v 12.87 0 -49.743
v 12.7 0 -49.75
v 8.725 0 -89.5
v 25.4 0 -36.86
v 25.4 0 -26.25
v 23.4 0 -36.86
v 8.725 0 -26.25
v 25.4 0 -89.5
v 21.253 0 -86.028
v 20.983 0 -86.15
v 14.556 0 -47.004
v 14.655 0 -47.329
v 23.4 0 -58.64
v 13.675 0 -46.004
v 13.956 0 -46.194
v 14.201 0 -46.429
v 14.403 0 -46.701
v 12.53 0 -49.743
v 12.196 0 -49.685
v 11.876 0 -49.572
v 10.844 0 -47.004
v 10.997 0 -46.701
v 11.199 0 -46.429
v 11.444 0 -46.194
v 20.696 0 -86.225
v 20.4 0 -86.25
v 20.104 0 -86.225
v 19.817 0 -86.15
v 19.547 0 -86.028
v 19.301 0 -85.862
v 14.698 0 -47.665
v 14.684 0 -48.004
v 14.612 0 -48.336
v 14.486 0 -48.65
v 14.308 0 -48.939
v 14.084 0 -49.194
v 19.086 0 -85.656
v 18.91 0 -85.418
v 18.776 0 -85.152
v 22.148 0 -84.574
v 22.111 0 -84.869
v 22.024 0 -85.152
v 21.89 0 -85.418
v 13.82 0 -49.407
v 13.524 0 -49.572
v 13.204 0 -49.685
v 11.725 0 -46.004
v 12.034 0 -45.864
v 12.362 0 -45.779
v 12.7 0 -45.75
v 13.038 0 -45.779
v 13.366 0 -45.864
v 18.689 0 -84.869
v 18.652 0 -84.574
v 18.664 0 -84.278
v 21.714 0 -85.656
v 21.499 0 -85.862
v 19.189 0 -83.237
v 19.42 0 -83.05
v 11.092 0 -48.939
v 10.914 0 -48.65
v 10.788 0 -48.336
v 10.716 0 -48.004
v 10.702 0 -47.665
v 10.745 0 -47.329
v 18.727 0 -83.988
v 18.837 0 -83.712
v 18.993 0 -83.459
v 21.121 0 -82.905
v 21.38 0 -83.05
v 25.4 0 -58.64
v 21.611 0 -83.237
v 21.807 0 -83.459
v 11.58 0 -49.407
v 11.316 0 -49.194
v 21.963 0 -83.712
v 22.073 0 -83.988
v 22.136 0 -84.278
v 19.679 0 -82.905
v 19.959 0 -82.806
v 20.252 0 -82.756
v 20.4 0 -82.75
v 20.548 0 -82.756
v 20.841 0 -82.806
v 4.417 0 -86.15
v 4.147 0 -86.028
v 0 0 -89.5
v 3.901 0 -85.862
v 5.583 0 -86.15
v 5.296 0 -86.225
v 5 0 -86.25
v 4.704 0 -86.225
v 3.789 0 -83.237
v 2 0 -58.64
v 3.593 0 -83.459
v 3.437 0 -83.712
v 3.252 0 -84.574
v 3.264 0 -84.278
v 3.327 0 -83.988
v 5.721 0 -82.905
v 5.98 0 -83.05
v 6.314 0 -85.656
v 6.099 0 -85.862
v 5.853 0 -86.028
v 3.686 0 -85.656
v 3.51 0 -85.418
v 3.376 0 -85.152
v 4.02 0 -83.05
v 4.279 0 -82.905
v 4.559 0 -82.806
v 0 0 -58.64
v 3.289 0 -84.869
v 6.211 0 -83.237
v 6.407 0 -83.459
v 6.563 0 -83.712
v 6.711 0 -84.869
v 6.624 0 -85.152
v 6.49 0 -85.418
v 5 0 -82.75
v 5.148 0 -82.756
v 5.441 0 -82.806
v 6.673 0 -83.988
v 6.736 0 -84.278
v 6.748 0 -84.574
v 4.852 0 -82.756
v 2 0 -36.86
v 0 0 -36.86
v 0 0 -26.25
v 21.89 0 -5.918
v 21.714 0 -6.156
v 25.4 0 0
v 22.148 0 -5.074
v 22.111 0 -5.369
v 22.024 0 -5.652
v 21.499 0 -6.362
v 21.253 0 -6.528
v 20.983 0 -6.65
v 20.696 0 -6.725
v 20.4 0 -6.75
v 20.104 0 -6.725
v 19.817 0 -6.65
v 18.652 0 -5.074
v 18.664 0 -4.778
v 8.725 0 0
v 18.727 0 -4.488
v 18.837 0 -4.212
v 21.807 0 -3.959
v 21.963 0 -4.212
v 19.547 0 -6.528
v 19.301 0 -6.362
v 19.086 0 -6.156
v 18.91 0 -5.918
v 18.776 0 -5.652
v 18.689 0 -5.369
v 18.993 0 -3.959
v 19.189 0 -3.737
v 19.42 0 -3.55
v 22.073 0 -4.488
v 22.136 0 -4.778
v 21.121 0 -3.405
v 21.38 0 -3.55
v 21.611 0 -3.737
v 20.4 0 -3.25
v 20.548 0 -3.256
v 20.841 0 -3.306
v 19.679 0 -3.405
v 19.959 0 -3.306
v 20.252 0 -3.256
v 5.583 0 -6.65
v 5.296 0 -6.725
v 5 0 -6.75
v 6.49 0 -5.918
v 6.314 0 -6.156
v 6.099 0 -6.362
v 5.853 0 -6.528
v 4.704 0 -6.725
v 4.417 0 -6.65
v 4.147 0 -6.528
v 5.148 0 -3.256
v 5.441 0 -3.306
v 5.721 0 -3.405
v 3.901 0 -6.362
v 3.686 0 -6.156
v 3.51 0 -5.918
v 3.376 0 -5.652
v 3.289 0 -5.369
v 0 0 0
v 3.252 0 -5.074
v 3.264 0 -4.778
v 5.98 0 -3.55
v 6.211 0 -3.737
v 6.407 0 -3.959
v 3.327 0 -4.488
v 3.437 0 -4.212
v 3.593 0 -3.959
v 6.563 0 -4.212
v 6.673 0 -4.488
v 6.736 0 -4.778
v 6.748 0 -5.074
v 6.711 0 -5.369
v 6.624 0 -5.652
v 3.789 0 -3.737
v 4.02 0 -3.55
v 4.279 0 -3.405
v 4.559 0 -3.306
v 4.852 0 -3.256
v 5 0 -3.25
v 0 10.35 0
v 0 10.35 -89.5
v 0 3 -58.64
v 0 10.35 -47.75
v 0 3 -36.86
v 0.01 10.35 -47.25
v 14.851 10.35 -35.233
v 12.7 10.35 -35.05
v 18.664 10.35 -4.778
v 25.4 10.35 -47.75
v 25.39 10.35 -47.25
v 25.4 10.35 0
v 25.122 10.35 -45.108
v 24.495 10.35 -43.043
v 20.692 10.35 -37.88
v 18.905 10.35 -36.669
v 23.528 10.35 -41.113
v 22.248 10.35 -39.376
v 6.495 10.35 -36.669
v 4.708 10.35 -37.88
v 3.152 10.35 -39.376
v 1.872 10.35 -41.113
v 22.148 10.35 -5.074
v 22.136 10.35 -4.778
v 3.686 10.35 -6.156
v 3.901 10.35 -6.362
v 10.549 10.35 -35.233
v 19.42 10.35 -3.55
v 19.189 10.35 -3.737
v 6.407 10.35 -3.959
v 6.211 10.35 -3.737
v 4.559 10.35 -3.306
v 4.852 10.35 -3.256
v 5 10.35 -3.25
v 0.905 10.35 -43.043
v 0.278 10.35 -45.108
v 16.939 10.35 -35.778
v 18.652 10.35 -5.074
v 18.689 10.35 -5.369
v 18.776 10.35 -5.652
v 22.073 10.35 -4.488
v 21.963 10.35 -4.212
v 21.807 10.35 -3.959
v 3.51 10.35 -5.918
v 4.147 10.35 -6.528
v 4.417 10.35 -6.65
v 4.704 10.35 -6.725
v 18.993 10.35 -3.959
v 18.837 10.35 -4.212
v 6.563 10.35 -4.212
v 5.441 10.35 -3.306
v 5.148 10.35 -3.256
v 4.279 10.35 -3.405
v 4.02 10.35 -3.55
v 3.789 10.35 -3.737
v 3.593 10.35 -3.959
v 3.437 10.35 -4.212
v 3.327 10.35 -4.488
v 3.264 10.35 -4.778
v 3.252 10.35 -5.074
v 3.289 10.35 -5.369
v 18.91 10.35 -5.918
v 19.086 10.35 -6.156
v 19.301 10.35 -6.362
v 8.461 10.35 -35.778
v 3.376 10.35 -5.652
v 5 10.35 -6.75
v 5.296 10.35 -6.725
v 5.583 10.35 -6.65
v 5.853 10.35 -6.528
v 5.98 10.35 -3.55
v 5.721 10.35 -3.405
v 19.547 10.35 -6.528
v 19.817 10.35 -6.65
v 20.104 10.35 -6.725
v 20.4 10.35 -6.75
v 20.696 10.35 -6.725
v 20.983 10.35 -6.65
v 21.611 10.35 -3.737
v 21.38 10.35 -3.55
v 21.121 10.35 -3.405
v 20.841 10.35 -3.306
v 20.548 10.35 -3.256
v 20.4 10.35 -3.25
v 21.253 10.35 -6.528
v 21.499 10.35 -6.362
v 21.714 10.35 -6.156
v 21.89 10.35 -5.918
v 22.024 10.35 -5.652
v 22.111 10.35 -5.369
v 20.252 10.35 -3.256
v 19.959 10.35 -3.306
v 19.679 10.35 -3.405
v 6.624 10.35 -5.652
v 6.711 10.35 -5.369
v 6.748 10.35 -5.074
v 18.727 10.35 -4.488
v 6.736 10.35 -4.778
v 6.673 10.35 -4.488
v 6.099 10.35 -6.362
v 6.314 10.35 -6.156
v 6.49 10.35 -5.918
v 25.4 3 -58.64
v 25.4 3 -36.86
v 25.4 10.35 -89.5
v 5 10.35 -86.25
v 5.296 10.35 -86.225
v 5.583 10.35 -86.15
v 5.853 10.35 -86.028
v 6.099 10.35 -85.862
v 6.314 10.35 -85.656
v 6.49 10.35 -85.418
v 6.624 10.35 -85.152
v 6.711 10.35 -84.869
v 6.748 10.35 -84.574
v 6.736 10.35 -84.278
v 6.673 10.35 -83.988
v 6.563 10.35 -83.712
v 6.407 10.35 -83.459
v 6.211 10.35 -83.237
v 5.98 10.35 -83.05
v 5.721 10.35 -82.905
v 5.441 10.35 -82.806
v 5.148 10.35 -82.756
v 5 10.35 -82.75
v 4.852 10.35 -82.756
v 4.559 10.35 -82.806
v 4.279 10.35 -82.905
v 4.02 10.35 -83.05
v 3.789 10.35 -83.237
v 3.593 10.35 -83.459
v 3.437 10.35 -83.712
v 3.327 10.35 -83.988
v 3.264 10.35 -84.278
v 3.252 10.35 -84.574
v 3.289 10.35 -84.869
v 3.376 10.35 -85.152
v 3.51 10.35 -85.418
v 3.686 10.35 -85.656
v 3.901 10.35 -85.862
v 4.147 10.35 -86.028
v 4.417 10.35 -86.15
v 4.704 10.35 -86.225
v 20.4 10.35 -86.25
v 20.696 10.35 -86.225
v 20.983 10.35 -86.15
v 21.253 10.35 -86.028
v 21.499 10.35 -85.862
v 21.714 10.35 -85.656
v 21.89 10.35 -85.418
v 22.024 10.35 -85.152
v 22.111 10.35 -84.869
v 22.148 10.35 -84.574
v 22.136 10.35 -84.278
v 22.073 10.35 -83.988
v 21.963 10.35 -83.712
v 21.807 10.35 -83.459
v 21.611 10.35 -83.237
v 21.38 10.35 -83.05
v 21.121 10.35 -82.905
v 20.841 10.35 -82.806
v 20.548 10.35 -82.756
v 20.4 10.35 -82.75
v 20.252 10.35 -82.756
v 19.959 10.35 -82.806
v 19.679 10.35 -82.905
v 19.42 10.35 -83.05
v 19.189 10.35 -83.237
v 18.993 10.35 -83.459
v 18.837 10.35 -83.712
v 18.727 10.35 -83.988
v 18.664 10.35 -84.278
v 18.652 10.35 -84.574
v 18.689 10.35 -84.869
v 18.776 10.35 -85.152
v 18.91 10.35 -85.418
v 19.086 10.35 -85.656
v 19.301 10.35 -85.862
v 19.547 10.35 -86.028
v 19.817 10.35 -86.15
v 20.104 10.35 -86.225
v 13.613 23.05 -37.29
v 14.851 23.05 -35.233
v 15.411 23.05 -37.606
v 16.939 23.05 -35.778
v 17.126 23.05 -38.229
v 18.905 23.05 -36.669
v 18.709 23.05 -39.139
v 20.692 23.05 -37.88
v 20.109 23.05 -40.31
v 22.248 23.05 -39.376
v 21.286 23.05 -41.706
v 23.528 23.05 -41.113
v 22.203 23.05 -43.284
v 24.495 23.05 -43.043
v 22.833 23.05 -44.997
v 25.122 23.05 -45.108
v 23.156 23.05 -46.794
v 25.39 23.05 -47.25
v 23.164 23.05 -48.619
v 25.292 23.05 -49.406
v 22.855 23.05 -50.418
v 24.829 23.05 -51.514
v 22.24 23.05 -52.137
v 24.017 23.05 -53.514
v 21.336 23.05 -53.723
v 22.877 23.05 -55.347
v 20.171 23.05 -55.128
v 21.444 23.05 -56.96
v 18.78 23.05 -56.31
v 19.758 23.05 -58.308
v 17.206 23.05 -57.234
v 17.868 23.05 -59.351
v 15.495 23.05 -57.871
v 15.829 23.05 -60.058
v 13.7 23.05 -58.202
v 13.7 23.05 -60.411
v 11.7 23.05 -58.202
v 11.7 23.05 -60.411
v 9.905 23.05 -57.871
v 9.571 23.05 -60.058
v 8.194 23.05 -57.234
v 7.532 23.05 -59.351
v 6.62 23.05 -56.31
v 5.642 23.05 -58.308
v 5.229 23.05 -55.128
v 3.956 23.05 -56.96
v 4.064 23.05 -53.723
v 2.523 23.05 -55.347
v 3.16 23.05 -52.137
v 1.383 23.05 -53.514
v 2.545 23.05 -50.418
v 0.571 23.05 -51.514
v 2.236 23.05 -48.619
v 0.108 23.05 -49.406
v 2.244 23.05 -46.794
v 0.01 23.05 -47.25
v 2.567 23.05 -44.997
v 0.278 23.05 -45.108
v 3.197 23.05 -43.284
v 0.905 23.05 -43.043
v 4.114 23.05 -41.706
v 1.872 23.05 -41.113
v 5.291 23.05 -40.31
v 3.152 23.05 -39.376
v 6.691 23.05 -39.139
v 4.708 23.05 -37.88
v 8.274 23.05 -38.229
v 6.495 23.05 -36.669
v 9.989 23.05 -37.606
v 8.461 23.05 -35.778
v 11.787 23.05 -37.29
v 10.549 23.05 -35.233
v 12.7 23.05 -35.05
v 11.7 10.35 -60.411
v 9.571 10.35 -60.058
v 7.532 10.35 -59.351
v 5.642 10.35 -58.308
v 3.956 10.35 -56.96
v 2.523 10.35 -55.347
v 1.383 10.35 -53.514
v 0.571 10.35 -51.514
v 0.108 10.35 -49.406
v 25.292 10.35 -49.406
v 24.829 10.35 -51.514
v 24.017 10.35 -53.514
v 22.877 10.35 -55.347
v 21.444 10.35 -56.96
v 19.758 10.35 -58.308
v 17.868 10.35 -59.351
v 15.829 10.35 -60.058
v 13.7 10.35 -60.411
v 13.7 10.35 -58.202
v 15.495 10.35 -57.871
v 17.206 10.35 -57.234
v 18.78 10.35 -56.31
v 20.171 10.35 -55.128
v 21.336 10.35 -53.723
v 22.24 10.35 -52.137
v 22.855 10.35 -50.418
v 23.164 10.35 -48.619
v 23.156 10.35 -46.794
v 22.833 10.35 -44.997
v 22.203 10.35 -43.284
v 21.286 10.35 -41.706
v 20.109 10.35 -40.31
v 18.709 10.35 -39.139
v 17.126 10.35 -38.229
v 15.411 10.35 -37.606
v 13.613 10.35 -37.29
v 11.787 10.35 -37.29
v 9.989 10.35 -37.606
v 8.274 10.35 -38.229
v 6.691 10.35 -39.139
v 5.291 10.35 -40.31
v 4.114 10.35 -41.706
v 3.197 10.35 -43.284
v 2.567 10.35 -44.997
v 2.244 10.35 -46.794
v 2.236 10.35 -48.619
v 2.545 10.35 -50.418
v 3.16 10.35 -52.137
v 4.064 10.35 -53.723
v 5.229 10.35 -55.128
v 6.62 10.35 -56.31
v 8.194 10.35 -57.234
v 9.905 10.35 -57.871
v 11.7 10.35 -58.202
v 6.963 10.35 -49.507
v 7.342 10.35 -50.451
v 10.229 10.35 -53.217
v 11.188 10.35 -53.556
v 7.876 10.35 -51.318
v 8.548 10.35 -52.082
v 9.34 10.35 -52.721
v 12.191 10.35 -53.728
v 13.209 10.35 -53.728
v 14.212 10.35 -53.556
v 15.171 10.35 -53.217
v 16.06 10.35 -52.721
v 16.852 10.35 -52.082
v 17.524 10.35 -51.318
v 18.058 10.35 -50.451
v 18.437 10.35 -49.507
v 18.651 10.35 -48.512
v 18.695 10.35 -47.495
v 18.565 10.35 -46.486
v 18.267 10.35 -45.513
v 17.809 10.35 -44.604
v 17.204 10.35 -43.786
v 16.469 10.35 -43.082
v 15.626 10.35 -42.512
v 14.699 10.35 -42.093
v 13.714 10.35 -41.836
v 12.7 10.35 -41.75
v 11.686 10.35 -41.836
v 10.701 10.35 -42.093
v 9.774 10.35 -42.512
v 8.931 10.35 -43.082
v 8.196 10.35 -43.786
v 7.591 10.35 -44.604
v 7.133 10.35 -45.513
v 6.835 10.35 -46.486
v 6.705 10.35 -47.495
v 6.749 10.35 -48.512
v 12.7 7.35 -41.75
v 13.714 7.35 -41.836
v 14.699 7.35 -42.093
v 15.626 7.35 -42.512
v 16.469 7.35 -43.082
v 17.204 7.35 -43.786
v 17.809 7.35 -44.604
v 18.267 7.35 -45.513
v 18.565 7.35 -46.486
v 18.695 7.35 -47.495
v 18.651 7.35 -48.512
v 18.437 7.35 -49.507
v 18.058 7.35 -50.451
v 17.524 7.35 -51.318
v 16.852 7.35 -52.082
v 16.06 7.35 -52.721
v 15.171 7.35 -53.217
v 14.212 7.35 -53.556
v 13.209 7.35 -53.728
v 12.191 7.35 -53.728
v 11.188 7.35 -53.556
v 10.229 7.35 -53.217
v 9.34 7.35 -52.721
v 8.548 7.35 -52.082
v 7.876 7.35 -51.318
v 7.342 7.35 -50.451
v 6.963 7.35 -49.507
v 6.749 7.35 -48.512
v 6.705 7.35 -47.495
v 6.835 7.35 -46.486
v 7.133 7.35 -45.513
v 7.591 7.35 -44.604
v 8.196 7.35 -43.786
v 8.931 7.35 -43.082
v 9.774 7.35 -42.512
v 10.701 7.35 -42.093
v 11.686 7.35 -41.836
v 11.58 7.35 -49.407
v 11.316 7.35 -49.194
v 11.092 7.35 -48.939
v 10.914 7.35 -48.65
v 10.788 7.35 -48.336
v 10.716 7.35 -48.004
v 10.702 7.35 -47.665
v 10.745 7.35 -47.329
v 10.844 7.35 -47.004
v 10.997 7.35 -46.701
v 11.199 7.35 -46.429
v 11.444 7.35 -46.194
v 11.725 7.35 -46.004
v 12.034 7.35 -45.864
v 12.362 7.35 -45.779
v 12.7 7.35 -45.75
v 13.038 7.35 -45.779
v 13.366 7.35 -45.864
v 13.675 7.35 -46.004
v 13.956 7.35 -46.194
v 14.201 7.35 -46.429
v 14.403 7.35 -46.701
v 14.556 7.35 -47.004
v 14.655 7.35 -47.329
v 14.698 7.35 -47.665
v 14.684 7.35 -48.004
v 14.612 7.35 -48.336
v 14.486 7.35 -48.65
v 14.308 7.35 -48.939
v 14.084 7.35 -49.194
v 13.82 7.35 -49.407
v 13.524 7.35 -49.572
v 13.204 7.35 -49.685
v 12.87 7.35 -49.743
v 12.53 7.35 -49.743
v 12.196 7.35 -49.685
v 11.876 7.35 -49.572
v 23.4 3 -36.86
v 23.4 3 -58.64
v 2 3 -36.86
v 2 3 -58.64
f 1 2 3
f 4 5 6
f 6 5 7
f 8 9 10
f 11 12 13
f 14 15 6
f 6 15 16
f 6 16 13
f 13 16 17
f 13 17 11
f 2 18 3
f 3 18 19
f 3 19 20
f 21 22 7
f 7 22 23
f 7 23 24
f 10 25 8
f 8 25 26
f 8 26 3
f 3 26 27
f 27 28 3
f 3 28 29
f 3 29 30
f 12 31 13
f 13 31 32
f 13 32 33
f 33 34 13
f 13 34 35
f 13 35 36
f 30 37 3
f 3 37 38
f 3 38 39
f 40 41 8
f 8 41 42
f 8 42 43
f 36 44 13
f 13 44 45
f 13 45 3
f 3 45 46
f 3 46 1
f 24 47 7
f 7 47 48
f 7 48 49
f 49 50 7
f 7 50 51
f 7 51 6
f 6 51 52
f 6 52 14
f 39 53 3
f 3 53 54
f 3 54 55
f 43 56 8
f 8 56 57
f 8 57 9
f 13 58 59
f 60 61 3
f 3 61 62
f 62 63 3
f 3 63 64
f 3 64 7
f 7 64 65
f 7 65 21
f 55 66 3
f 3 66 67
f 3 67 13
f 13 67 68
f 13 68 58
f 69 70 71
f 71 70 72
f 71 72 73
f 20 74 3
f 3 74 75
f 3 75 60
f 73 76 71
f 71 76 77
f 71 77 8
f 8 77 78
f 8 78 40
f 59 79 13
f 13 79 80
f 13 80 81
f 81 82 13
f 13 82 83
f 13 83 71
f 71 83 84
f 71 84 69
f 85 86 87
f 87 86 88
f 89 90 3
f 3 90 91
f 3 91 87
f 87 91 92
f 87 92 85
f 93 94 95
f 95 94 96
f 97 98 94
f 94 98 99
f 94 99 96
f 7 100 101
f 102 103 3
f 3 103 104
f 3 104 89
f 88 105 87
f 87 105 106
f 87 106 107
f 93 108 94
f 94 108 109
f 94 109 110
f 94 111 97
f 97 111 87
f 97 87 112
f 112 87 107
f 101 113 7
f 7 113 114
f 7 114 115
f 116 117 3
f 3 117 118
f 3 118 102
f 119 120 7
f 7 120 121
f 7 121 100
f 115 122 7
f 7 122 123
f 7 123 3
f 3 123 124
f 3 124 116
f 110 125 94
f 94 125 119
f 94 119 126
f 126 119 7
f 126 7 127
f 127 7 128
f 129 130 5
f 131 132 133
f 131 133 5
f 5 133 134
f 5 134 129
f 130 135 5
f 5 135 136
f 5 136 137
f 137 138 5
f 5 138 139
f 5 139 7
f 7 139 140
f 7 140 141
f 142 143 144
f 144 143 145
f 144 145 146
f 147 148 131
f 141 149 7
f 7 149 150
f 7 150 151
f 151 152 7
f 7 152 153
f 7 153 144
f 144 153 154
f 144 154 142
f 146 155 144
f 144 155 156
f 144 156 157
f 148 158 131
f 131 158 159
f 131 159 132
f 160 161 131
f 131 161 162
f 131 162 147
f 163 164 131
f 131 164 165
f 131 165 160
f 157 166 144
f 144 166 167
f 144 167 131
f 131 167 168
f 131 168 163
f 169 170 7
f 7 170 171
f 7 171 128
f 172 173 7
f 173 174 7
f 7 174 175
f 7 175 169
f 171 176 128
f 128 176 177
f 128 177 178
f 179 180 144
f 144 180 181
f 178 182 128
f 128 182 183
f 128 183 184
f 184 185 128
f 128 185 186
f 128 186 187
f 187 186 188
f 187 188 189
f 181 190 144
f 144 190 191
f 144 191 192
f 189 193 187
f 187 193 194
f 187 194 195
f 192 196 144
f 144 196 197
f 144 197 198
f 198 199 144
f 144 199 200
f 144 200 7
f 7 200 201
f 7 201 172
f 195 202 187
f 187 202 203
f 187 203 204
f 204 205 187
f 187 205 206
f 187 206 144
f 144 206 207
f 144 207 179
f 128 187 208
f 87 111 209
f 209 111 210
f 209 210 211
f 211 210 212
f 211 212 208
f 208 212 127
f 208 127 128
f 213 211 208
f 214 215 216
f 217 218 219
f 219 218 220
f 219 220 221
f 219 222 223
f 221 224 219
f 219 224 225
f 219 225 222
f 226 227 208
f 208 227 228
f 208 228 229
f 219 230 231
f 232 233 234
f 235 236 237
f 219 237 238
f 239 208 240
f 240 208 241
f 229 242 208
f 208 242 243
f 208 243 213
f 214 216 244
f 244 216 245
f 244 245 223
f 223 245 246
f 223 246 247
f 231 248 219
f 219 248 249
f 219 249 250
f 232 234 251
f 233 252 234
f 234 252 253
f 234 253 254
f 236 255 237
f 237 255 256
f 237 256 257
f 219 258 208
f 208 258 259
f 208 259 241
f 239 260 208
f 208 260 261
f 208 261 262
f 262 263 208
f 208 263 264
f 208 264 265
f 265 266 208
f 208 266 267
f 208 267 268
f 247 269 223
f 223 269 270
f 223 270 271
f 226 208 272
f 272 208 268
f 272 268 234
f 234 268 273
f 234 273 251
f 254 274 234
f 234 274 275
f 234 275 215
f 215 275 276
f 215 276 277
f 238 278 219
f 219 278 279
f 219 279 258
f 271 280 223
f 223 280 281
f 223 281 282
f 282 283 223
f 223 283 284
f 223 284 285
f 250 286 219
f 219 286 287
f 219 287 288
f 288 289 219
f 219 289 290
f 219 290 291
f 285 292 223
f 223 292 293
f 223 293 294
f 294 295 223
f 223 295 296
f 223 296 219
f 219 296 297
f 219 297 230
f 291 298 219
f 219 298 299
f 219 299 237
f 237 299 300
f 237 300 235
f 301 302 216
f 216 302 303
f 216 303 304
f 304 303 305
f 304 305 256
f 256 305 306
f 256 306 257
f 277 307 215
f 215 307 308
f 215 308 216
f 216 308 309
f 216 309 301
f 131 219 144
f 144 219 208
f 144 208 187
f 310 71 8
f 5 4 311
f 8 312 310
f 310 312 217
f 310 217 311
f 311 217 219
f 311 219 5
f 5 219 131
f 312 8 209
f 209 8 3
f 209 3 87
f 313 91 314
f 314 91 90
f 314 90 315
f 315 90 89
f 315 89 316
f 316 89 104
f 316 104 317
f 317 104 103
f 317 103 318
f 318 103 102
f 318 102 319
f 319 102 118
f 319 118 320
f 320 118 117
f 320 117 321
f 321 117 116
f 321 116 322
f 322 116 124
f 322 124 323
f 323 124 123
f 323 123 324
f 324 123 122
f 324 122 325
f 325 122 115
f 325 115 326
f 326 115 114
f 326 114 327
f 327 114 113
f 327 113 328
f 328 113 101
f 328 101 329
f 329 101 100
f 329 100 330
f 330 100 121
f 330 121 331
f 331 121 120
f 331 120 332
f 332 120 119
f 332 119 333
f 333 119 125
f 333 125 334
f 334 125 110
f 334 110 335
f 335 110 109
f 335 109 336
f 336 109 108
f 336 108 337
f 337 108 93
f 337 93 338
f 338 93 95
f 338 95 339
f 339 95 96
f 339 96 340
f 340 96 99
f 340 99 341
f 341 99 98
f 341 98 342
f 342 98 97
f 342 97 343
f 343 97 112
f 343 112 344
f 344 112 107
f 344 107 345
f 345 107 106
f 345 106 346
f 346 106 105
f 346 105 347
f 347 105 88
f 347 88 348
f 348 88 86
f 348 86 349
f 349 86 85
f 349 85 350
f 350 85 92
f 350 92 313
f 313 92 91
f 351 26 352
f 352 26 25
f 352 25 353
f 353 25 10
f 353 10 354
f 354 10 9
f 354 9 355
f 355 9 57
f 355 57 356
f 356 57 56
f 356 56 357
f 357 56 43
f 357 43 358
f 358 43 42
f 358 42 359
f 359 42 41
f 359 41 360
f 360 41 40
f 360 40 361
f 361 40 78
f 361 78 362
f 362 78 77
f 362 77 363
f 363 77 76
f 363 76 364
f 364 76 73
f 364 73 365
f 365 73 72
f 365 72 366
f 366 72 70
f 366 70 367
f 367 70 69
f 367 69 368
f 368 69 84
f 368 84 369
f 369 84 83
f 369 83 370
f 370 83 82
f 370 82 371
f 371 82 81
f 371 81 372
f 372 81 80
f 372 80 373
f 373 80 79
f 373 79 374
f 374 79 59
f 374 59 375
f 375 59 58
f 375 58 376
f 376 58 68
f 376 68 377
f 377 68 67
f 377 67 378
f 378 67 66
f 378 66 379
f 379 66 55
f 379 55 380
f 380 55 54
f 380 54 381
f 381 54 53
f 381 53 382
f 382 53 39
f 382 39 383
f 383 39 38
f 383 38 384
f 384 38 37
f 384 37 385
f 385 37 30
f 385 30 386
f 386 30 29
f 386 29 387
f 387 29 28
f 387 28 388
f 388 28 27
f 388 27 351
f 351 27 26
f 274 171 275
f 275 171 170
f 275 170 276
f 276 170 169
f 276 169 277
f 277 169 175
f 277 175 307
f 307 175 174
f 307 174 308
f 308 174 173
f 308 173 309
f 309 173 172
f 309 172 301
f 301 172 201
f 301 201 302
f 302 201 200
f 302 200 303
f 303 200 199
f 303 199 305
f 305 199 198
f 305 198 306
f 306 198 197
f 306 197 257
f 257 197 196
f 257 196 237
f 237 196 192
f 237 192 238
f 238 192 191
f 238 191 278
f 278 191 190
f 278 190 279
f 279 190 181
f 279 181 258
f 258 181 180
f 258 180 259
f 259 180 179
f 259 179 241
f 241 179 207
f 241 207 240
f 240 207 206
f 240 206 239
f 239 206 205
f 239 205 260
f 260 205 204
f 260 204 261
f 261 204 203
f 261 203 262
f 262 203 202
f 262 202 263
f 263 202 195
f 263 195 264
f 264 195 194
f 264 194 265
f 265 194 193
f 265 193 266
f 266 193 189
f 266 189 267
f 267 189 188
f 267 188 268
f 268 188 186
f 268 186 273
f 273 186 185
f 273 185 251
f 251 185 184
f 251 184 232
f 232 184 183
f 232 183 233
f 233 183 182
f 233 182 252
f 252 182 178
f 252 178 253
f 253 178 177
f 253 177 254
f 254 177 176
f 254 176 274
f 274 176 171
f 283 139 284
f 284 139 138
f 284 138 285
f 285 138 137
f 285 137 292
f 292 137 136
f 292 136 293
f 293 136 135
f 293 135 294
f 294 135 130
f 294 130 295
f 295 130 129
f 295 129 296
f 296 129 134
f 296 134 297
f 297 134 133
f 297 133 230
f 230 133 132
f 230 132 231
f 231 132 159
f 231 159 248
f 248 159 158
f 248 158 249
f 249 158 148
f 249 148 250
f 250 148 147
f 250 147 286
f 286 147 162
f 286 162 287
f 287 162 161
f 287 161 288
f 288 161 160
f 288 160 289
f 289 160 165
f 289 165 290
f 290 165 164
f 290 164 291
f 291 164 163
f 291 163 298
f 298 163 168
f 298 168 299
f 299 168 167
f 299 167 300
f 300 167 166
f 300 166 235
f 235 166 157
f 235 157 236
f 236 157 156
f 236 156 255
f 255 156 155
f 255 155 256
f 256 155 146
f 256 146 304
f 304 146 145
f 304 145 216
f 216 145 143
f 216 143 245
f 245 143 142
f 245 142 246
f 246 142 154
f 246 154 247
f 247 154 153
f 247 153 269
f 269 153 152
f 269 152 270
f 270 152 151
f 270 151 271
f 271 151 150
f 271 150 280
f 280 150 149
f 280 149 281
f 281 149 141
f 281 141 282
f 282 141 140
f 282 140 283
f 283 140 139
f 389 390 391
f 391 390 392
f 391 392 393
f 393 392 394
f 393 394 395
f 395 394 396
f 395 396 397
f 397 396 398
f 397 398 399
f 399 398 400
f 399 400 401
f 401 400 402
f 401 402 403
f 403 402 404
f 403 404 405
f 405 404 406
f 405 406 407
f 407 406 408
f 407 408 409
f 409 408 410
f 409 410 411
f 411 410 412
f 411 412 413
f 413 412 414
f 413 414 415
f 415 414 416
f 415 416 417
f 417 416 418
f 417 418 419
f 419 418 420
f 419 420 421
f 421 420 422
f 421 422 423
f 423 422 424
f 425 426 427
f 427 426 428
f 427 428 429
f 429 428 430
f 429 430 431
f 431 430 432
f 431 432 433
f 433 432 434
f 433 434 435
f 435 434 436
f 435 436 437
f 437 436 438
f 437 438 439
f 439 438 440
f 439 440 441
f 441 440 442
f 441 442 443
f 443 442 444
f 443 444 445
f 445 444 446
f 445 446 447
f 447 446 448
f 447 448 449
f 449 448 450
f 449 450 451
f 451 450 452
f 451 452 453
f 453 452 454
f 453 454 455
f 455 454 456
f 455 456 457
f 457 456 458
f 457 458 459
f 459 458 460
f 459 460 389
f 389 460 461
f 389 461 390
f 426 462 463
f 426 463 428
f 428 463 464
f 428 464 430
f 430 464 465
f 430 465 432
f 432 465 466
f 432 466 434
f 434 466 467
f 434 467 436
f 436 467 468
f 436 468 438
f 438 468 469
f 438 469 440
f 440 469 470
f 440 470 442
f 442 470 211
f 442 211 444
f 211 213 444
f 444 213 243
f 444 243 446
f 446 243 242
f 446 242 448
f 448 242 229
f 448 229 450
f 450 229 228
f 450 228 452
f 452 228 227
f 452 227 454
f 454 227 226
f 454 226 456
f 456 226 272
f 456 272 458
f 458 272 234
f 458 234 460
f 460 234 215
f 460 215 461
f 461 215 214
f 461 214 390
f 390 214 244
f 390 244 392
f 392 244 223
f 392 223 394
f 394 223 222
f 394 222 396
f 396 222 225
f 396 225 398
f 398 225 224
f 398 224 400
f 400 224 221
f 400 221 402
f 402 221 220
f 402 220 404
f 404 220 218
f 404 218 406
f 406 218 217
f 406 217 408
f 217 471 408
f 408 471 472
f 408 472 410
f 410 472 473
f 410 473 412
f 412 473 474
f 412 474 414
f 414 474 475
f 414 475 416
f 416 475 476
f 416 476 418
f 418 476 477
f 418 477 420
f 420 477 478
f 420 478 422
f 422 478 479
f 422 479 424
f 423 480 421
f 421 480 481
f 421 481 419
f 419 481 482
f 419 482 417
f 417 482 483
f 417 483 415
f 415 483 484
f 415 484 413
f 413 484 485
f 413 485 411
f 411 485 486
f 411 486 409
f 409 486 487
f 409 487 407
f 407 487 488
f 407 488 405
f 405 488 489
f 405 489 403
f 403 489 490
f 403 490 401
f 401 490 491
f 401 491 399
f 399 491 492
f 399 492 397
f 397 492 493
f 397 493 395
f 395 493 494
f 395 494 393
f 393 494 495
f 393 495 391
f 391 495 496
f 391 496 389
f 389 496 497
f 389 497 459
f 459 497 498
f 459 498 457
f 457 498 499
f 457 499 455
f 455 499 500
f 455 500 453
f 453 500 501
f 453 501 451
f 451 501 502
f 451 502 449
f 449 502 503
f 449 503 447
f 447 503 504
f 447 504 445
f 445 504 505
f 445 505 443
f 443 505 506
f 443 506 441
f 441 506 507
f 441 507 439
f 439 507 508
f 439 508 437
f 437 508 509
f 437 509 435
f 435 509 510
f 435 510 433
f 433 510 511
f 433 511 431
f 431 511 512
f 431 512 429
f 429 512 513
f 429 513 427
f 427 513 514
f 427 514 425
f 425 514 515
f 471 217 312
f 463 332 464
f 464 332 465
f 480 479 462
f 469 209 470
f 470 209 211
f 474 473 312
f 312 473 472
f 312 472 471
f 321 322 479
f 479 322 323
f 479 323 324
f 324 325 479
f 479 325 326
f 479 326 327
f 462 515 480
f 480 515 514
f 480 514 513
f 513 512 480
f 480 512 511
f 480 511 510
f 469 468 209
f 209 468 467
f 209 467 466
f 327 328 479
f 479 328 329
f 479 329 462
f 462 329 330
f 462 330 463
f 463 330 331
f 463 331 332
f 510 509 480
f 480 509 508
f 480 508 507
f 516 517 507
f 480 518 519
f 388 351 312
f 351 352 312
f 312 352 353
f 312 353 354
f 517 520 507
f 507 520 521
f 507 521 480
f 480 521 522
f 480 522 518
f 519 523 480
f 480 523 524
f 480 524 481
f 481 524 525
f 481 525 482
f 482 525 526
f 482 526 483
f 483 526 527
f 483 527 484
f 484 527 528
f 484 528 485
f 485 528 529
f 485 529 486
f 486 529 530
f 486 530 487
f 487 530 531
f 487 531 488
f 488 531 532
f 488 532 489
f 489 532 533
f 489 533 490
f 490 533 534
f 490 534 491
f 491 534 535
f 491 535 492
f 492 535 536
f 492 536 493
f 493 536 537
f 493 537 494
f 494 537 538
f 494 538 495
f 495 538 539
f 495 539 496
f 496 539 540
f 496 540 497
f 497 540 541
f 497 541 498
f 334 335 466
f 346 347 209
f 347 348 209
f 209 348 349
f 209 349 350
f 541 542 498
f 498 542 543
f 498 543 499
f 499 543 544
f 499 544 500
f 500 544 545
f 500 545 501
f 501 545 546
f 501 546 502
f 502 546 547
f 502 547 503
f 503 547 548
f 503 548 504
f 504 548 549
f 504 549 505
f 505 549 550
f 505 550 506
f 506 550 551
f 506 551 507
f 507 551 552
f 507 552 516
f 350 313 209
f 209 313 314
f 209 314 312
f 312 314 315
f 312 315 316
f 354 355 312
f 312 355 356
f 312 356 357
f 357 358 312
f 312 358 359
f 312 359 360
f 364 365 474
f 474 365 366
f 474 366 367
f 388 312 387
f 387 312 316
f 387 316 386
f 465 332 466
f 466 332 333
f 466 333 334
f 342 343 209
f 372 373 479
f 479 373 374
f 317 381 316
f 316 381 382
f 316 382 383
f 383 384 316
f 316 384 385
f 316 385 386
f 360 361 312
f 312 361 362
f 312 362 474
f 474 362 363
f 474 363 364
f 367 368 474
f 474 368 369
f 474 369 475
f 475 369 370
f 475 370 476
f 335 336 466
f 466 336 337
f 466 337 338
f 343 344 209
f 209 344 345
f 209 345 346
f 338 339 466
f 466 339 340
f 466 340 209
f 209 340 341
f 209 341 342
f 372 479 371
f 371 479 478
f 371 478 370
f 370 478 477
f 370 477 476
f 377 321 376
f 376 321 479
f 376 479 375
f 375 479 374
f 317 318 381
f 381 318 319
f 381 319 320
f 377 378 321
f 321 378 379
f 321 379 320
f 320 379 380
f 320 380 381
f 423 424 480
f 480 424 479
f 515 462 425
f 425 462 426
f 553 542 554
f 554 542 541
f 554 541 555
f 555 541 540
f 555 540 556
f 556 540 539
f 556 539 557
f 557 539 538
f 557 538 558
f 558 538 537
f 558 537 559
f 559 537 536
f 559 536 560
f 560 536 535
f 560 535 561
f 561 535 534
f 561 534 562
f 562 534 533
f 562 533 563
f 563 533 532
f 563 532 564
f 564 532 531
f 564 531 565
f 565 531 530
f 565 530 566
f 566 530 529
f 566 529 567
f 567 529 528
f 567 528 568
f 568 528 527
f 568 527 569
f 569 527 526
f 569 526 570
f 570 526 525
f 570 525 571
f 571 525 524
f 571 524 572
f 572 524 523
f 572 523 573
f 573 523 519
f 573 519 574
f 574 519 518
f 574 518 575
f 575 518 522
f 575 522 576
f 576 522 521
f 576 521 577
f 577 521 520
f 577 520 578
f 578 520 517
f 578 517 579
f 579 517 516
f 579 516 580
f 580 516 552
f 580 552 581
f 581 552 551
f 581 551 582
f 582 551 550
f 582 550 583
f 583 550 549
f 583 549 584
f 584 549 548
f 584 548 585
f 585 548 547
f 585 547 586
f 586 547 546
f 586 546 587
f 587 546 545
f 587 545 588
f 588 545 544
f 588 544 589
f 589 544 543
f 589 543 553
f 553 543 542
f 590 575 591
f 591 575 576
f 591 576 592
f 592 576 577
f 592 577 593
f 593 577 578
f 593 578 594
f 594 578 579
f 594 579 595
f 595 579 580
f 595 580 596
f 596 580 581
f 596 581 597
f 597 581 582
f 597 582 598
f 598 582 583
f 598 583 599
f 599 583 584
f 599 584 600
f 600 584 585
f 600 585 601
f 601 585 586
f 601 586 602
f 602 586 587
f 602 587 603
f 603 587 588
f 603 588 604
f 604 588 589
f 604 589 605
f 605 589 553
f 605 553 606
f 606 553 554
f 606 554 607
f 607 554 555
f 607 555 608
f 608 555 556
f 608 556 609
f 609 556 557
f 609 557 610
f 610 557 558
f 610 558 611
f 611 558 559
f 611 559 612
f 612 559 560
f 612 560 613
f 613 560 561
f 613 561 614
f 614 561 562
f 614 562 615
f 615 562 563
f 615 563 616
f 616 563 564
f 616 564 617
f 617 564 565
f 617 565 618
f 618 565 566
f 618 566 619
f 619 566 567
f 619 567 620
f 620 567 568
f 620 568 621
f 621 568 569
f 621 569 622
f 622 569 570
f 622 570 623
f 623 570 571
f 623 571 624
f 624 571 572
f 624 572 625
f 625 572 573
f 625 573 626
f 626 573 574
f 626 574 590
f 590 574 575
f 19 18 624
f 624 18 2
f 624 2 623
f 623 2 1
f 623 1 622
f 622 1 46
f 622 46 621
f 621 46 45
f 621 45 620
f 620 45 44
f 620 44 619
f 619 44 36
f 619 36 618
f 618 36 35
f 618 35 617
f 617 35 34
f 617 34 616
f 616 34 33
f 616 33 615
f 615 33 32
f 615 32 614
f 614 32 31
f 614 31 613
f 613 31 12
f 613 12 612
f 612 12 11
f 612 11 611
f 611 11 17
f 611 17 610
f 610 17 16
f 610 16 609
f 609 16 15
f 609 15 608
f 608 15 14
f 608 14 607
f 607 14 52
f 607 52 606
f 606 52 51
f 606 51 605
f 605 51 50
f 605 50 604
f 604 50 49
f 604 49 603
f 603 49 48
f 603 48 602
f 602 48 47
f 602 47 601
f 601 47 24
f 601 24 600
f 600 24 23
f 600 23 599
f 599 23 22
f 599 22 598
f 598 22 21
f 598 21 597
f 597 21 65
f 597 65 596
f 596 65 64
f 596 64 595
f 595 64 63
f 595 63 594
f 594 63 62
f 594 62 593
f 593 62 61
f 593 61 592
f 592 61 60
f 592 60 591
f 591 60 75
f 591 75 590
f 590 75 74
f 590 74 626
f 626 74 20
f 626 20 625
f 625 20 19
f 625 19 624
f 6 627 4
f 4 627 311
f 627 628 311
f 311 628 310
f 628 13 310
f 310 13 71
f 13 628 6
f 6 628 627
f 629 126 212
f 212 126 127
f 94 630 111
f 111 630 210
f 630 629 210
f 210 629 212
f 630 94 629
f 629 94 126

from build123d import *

# Parameters (mm, degrees)
SKETCH1_W           = 25.4
SKETCH1_H           = 89.50000007
SKETCH1_R           = 1.75
BOSS_EXTRUDE1_DEPTH = 10.35
SKETCH2_R           = 12.7
SKETCH2_R_2         = 10.5
BOSS_EXTRUDE2_DEPTH = 12.7
SKETCH5_W           = 2
SKETCH5_H           = 8.007473722
CUT_EXTRUDE1_DEPTH  = 12.7
SKETCH6_R           = 6
CUT_EXTRUDE2_DEPTH  = 3
SKETCH7_R           = 2
CUT_EXTRUDE3_DEPTH  = 7.35
SKETCH8_W           = 21.78000007
SKETCH8_H           = 3
CUT_EXTRUDE4_DEPTH  = 2


with BuildPart() as part:
    # Sketch1 → Boss-Extrude1 (new body)
    with BuildSketch(Plane(origin=(0, 0, 0), x_dir=(1, 0, 0), z_dir=(0, 1, 0))):
        with Locations((12.7, 44.750000035)):
            Rectangle(SKETCH1_W, SKETCH1_H)
        with Locations((5, 84.50000007)):
            Circle(SKETCH1_R, mode=Mode.SUBTRACT)
        with Locations((20.4, 84.50000007)):
            Circle(SKETCH1_R, mode=Mode.SUBTRACT)
        with Locations((5, 5)):
            Circle(SKETCH1_R, mode=Mode.SUBTRACT)
        with Locations((20.4, 5)):
            Circle(SKETCH1_R, mode=Mode.SUBTRACT)
    extrude(amount=BOSS_EXTRUDE1_DEPTH)

    # Sketch2 → Boss-Extrude2 (add)
    with BuildSketch(Plane(origin=(0, 10.35, 0), x_dir=(1, 0, 0), z_dir=(0, 1, 0))):
        with Locations((12.7, 47.75000007)):
            Circle(SKETCH2_R)
        with Locations((12.7, 47.75000007)):
            Circle(SKETCH2_R_2, mode=Mode.SUBTRACT)
    extrude(amount=BOSS_EXTRUDE2_DEPTH)

    # Sketch5 → Cut-Extrude1 (cut)
    with BuildSketch(Plane(origin=(0, 23.05, 0), x_dir=(1, 0, 0), z_dir=(0, 1, 0))):
        with Locations((12.7, 58.700520661)):
            Rectangle(SKETCH5_W, SKETCH5_H)
    extrude(amount=-CUT_EXTRUDE1_DEPTH, mode=Mode.SUBTRACT)

    # Sketch6 → Cut-Extrude2 (cut)
    with BuildSketch(Plane(origin=(0, 10.35, 0), x_dir=(1, 0, 0), z_dir=(0, 1, 0))):
        with Locations((12.7, 47.75000007)):
            Circle(SKETCH6_R)
    extrude(amount=-CUT_EXTRUDE2_DEPTH, mode=Mode.SUBTRACT)

    # Sketch7 → Cut-Extrude3 (cut)
    with BuildSketch(Plane(origin=(0, 7.35, 0), x_dir=(1, 0, 0), z_dir=(0, 1, 0))):
        with Locations((12.7, 47.75000007)):
            Circle(SKETCH7_R)
    extrude(amount=-CUT_EXTRUDE3_DEPTH, mode=Mode.SUBTRACT)

    # Sketch8 → Cut-Extrude4 (cut)
    with BuildSketch(Plane(origin=(25.4, 0, 0), x_dir=(0, 0, -1), z_dir=(1, 0, 0))):
        with Locations((47.750000035, 1.5)):
            Rectangle(SKETCH8_W, SKETCH8_H)
    cut_extrude4 = extrude(amount=-CUT_EXTRUDE4_DEPTH, mode=Mode.SUBTRACT)

    # Mirror1: Cut-Extrude4 across plane
    add(cut_extrude4.mirror(Plane.ZY.offset(-12.7)), mode=Mode.SUBTRACT)


solid = part.part
